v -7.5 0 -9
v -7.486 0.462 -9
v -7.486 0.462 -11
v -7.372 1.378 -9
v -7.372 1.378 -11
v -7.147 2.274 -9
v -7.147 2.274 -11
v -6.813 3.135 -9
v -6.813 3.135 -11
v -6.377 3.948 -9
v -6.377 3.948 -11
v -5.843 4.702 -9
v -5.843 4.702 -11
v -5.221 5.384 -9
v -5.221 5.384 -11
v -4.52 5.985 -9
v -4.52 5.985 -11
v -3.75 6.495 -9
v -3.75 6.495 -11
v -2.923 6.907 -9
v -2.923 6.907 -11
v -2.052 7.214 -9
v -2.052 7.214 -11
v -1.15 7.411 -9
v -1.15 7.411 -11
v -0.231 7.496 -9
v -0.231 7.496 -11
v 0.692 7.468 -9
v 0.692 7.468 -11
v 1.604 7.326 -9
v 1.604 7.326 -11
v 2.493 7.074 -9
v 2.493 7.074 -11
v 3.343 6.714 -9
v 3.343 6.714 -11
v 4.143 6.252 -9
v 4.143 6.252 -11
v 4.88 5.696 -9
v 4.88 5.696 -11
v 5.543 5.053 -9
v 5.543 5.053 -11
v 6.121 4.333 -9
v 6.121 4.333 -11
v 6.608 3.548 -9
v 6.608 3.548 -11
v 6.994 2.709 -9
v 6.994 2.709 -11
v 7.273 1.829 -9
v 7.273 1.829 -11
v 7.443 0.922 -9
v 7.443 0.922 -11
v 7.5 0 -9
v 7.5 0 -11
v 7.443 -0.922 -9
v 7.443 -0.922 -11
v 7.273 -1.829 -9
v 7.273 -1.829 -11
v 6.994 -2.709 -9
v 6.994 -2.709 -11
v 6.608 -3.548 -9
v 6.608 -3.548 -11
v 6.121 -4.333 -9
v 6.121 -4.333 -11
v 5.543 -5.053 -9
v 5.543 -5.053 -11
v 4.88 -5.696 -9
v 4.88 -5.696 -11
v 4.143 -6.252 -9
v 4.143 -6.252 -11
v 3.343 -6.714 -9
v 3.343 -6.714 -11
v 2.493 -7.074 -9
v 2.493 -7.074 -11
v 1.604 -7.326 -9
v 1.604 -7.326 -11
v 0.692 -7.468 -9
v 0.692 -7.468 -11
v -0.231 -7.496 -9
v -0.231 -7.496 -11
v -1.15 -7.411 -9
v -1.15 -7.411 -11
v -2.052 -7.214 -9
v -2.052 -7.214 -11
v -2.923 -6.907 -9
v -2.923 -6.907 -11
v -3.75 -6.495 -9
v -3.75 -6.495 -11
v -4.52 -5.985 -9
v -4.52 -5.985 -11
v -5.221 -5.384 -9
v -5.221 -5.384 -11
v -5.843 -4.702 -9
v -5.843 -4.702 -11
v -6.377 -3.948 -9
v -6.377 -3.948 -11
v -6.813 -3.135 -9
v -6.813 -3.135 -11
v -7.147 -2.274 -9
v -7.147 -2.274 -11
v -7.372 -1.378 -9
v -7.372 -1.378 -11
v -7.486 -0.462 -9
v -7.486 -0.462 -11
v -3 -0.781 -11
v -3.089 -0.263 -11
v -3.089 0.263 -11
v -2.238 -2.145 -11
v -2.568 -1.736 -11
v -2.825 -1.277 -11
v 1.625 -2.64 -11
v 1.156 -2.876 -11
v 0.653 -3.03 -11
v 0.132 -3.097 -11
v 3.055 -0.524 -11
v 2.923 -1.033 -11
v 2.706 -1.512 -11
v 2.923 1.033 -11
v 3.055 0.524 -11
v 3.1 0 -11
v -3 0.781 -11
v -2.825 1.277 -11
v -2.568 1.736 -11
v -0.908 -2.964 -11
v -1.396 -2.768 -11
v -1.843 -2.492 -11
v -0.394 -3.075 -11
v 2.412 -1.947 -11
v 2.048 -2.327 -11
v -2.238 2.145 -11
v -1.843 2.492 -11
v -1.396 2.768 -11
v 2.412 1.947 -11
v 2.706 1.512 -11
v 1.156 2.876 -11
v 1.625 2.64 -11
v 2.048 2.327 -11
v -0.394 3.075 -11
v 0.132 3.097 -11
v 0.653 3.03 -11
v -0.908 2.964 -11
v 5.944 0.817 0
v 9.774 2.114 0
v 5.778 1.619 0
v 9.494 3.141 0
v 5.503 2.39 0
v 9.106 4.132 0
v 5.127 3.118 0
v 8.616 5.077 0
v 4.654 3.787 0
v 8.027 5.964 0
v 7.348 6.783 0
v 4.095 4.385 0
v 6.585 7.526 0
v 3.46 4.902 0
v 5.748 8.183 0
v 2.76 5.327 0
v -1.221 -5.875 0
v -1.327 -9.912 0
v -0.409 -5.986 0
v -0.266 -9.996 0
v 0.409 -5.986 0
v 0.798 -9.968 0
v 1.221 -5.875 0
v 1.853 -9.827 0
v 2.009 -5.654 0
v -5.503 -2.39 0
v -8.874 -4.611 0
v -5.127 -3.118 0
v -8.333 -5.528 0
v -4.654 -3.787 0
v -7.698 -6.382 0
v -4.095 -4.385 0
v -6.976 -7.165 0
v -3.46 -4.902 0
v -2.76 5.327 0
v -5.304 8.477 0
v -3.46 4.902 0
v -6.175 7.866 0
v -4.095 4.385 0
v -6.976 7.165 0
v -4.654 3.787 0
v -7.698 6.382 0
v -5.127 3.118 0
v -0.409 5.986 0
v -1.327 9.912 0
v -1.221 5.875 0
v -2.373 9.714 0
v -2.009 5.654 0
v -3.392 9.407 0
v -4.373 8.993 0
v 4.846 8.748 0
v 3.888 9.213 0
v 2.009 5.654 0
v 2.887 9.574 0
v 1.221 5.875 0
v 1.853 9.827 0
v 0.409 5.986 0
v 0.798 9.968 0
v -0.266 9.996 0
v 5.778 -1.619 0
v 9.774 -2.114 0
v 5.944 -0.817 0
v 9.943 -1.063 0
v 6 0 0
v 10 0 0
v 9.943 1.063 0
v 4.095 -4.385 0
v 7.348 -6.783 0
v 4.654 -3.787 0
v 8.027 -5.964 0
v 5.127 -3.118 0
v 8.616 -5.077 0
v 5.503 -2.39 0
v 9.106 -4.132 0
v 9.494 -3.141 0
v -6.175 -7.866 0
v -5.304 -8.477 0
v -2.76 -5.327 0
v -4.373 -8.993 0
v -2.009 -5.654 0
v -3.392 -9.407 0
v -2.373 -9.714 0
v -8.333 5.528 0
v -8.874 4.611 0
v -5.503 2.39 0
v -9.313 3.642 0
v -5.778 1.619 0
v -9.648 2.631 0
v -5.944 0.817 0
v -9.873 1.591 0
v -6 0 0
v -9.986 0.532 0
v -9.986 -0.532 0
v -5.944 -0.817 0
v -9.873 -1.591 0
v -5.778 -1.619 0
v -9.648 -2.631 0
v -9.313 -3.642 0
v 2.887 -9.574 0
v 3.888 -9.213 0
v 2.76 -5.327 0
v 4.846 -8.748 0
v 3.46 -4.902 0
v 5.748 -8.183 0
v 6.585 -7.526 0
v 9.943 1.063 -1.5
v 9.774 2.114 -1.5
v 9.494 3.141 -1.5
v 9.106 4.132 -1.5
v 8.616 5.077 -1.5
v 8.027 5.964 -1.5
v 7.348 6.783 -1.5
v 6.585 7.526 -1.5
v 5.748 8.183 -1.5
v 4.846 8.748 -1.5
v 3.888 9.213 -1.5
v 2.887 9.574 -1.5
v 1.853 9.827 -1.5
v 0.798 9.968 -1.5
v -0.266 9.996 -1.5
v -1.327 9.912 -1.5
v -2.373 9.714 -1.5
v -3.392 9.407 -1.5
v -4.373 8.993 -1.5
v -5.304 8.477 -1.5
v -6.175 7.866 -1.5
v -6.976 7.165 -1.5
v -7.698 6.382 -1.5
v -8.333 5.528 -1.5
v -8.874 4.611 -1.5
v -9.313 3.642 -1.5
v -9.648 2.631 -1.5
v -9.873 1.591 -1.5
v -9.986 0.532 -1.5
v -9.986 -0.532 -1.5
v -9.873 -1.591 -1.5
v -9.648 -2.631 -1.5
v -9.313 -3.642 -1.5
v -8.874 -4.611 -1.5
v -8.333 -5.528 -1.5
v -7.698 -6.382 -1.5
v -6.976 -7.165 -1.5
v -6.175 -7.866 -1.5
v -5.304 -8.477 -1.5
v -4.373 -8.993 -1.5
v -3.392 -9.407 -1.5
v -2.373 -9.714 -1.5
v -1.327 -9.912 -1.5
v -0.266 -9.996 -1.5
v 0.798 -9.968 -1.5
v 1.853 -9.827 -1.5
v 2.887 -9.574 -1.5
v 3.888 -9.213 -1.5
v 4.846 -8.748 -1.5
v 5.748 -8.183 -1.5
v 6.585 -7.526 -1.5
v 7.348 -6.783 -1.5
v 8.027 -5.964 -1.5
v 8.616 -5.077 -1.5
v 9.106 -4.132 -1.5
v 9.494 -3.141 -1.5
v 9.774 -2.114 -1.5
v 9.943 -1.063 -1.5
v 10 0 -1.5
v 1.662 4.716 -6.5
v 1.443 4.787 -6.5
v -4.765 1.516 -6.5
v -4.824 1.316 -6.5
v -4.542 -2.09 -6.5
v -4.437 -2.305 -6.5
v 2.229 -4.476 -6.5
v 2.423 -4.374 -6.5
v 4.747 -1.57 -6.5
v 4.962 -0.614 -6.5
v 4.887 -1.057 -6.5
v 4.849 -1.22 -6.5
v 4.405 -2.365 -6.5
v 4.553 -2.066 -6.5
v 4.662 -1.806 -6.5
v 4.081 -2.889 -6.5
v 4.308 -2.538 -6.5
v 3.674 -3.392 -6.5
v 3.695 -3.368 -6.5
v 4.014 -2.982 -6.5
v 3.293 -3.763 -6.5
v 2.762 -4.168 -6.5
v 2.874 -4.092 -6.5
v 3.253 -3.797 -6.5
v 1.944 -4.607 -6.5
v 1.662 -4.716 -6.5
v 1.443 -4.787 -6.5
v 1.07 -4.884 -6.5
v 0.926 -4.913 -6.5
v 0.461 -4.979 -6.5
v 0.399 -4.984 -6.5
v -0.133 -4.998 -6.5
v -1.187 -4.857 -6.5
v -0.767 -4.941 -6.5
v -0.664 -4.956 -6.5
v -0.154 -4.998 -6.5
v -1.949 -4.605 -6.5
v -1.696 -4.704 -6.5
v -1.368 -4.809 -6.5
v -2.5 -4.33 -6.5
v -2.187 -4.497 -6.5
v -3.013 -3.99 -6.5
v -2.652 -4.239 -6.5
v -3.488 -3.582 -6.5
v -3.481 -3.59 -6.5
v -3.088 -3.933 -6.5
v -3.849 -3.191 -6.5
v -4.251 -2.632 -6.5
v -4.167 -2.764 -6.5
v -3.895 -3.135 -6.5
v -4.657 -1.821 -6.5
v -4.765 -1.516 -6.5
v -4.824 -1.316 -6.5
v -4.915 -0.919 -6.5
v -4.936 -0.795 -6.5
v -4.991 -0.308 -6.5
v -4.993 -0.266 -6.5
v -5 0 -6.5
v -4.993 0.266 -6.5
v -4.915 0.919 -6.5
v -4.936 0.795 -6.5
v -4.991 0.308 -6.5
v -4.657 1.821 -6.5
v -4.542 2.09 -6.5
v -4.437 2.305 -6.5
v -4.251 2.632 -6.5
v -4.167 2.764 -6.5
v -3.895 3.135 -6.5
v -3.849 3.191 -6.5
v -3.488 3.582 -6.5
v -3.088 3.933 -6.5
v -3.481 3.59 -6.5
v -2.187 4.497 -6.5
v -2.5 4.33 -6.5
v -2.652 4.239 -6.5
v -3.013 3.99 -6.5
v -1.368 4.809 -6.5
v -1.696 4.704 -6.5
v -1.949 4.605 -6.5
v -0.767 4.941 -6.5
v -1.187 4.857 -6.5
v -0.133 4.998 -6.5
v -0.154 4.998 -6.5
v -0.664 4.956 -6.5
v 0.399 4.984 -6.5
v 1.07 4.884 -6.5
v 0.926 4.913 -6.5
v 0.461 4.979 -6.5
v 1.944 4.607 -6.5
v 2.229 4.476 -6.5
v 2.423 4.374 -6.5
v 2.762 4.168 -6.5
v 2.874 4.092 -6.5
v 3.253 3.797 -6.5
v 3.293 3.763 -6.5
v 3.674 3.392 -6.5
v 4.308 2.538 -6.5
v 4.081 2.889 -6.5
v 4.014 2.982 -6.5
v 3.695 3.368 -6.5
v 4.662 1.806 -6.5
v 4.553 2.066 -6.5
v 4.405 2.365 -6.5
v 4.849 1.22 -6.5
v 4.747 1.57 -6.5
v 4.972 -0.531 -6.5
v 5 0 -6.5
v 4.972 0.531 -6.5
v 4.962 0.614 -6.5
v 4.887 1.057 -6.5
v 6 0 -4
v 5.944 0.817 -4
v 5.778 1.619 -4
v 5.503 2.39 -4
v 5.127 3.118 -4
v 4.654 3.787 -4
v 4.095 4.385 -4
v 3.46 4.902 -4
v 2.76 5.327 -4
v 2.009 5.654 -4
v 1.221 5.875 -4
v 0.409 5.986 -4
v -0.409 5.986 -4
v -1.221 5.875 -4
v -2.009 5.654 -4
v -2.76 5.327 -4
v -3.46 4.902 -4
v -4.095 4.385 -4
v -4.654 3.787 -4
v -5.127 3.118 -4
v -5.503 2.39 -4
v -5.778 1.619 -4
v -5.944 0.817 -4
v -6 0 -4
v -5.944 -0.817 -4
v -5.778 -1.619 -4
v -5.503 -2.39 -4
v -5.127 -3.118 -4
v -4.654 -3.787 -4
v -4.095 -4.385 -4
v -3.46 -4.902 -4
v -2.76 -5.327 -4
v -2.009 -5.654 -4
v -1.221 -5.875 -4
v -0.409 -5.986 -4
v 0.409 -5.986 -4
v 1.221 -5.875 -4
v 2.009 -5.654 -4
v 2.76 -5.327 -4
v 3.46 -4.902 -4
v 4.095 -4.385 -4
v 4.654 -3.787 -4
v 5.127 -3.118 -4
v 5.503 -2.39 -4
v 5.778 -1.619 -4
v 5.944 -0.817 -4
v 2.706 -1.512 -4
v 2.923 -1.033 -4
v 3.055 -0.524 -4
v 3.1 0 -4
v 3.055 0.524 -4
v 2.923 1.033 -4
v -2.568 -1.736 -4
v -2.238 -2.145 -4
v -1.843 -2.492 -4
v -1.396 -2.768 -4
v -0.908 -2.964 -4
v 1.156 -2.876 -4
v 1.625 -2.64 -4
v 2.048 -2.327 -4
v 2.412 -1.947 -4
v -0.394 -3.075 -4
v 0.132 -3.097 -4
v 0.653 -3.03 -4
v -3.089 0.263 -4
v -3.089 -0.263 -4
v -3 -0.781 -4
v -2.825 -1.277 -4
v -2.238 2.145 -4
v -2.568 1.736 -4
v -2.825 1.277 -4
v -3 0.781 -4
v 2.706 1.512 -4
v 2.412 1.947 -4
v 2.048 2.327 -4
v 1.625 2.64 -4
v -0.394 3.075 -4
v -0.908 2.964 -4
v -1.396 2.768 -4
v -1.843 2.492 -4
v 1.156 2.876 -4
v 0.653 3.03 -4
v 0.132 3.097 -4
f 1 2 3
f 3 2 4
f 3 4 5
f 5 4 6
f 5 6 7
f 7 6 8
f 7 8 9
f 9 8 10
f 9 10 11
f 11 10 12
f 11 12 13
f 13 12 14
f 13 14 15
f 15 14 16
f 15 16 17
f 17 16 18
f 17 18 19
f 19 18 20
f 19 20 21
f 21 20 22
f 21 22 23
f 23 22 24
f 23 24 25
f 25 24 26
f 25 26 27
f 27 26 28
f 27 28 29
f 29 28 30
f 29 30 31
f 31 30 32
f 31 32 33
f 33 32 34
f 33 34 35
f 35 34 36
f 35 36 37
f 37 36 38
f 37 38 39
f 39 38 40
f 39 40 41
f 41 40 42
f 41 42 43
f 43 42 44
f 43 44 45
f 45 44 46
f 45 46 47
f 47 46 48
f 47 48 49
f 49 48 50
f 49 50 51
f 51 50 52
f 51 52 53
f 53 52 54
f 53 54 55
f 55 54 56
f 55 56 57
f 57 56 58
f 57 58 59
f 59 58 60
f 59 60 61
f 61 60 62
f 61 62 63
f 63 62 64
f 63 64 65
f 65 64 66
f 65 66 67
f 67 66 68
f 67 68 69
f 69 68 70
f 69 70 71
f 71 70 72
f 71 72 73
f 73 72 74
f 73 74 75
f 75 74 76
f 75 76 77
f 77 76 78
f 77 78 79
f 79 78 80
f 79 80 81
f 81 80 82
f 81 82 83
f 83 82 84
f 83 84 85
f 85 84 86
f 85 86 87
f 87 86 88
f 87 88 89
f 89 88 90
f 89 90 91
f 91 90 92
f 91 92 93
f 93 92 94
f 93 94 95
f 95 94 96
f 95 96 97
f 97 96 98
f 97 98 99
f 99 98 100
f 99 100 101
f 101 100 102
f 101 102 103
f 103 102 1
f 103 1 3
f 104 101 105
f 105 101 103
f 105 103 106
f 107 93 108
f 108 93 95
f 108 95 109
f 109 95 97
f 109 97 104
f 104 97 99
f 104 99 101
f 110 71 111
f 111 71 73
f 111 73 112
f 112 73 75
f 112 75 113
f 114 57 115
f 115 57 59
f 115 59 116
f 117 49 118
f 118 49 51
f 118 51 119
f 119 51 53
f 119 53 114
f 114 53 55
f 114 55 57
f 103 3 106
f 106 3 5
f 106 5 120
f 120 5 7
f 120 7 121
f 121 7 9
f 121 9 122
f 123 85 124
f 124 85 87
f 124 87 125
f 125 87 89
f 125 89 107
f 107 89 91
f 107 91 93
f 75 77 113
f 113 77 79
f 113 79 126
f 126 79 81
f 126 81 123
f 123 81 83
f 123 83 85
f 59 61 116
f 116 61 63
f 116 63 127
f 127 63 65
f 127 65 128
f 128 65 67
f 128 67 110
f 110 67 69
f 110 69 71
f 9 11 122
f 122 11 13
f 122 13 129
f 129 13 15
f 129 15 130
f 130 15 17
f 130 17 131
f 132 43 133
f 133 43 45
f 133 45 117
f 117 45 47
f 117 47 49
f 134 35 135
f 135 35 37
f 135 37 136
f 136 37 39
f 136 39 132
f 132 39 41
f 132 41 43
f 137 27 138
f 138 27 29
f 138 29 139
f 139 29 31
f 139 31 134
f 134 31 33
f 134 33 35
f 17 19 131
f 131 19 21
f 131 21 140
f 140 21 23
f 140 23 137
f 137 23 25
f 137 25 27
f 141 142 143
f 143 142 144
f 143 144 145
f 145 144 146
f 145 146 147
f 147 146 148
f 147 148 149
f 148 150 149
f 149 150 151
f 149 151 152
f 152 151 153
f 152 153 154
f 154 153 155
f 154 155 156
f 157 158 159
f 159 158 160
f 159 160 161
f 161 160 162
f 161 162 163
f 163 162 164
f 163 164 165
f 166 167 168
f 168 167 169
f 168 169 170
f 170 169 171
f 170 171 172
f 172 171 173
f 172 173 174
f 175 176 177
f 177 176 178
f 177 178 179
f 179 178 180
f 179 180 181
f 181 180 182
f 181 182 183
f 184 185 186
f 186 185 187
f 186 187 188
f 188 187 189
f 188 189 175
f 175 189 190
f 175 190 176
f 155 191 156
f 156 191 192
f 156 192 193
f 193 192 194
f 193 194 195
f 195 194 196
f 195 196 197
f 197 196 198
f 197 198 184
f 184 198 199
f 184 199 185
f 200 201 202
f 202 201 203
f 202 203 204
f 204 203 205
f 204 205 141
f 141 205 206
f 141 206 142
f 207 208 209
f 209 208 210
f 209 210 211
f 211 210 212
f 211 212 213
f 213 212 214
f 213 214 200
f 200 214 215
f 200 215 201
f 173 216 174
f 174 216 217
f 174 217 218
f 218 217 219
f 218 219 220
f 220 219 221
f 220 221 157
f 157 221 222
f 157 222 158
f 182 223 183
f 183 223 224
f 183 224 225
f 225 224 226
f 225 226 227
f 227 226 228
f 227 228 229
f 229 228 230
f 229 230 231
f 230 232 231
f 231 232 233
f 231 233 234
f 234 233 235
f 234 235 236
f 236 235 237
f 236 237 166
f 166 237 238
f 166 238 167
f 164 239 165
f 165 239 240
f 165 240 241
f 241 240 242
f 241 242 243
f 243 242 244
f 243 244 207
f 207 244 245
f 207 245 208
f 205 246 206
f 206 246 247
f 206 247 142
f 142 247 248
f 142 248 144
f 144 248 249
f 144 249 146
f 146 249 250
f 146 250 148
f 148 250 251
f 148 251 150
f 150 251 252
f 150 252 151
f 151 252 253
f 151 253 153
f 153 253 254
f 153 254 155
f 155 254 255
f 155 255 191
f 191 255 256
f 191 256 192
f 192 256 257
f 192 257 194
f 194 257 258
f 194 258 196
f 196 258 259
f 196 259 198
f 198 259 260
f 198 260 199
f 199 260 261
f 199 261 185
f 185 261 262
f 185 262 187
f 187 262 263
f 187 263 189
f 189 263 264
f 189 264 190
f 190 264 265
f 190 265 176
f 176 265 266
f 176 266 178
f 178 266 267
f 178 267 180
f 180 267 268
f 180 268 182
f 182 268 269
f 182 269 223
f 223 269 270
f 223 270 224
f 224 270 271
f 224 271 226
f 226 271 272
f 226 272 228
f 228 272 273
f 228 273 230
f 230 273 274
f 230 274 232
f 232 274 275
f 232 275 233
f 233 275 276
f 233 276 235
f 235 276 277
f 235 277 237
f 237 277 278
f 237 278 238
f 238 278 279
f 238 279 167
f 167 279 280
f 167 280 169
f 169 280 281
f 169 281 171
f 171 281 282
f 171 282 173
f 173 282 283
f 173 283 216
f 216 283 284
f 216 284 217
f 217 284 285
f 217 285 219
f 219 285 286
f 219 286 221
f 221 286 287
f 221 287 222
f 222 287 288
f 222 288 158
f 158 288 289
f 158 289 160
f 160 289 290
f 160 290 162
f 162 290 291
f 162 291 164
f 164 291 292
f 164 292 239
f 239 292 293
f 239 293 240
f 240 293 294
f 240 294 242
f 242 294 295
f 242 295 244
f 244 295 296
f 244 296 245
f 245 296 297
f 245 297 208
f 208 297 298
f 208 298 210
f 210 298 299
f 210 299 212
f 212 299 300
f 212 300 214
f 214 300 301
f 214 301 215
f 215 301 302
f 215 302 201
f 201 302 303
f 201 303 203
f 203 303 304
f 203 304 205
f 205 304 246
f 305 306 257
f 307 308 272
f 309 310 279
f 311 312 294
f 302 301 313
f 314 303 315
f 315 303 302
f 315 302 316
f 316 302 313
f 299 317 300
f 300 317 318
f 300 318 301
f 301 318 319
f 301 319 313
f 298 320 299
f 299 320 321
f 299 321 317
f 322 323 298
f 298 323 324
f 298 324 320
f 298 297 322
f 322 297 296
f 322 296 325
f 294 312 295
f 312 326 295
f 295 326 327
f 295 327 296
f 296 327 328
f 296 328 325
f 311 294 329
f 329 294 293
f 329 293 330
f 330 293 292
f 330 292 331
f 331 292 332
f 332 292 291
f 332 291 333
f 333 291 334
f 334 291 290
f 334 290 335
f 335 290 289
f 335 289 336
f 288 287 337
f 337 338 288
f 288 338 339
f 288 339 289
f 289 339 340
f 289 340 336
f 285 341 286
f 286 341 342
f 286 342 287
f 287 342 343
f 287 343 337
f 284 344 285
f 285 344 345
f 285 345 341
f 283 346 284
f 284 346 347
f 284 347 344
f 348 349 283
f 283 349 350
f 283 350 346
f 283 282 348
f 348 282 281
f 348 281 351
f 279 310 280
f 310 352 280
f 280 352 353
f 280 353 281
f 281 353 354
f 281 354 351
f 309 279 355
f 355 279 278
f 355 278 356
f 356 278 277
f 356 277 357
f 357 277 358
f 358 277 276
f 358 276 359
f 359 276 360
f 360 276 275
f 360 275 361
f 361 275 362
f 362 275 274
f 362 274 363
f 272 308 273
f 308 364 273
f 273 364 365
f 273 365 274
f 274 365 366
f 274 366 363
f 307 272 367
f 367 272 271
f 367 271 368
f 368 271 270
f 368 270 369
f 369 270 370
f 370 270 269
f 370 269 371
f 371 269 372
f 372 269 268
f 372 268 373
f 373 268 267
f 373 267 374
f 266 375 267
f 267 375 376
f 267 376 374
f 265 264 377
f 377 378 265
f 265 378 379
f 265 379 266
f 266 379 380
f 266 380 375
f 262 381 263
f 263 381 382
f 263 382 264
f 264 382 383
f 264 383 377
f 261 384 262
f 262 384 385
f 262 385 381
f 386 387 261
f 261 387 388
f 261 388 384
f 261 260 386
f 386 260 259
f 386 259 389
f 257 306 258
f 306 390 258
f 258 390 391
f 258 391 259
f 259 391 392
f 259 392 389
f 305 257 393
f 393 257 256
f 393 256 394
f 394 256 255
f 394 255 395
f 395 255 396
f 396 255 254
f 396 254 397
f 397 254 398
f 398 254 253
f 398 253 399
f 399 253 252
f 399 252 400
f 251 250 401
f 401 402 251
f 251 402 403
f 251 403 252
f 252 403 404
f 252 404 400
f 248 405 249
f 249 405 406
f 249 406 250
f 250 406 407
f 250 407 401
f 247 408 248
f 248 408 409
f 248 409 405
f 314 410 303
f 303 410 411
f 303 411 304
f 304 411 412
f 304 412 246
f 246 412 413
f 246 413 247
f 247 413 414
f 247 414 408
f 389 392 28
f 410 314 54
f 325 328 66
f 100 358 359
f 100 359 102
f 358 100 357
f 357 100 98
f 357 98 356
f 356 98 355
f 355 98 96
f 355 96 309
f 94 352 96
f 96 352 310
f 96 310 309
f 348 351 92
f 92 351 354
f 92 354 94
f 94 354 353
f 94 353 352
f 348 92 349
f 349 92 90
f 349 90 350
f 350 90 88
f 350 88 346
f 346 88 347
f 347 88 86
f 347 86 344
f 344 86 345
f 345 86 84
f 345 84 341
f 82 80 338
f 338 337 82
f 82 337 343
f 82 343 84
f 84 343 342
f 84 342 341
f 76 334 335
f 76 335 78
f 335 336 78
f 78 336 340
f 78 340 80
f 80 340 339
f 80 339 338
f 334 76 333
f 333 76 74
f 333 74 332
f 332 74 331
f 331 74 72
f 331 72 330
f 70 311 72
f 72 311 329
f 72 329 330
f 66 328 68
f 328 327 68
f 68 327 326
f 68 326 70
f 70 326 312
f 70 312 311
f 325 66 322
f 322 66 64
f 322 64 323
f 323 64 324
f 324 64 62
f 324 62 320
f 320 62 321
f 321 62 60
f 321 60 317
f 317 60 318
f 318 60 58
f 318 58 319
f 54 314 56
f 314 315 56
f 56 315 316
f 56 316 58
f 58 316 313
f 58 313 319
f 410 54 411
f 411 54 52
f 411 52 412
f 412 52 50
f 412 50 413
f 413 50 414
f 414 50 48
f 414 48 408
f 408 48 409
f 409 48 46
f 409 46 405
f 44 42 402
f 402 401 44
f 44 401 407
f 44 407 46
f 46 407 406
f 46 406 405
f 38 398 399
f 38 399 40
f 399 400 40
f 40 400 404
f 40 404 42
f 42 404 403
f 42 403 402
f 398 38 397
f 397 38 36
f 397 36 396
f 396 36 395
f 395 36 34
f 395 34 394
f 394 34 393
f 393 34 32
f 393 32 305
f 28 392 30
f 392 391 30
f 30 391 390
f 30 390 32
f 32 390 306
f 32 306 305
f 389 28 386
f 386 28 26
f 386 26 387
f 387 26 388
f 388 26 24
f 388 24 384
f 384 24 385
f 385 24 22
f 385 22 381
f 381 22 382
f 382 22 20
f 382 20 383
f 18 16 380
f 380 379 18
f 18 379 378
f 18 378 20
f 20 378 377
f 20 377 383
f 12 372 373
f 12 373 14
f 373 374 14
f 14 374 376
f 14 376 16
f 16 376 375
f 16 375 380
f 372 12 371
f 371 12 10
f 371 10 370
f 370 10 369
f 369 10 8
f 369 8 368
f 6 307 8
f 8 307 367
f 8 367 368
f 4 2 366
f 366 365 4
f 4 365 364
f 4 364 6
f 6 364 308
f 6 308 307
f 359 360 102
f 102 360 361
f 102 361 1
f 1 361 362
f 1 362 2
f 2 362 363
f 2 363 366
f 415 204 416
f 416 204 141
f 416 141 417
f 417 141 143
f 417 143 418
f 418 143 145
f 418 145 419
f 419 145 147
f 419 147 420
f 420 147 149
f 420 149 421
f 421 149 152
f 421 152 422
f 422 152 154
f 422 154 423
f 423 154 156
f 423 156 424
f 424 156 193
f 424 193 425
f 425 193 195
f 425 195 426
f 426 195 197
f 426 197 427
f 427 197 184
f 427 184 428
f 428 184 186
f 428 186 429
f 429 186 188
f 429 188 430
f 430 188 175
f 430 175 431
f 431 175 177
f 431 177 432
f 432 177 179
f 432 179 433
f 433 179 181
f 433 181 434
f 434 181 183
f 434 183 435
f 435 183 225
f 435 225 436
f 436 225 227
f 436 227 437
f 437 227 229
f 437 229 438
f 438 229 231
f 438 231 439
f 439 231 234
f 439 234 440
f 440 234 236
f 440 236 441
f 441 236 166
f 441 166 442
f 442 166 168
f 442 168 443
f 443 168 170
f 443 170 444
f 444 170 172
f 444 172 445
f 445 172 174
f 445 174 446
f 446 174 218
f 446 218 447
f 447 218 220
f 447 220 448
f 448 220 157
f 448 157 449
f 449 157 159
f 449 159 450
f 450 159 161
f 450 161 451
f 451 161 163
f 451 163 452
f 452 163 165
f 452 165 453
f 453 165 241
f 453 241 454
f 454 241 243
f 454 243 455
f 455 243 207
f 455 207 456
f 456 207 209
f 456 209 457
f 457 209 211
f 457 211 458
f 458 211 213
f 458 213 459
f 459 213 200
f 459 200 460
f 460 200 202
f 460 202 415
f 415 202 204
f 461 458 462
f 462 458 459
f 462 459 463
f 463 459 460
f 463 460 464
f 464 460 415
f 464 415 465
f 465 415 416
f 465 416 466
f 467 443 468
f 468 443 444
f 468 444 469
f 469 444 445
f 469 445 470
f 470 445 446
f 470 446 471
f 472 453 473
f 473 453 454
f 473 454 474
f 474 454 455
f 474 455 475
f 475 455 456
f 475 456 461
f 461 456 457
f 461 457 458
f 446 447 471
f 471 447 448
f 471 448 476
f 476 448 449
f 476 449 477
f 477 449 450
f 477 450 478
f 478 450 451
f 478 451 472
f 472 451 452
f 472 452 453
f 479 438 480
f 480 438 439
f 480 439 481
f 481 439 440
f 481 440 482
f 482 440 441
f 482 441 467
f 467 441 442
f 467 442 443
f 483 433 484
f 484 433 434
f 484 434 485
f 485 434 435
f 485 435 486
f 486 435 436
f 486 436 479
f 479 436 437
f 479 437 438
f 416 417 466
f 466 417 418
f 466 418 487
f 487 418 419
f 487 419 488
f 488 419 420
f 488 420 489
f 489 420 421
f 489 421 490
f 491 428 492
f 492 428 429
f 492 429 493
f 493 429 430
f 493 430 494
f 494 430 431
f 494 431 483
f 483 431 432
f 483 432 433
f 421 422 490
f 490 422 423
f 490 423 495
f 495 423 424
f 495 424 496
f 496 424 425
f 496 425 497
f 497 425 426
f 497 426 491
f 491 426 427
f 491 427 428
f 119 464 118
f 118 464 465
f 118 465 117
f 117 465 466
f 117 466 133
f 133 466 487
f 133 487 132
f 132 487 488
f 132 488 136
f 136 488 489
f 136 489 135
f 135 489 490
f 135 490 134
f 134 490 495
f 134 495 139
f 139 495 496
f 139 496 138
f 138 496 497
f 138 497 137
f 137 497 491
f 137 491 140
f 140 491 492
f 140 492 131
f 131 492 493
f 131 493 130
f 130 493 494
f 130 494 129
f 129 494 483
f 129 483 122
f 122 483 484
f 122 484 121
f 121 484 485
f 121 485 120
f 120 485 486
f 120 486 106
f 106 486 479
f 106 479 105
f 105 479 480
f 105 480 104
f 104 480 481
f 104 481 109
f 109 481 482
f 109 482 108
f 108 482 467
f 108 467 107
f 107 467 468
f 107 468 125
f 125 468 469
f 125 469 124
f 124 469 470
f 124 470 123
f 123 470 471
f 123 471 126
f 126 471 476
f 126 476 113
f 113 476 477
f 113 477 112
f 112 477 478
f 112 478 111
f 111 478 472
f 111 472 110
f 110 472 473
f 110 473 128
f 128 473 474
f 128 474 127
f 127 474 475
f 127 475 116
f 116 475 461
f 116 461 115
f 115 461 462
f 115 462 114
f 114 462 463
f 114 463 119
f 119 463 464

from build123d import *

# Parameters (mm, degrees)
SKETCH_2_R          = 6
CUT_EXTRUDE_1_DEPTH = 4
SKETCH_3_R          = 3.1
CUT_EXTRUDE_2_DEPTH = 16.779733838


with BuildPart() as part:
    # 草图1 → 旋转1 (revolve)
    with BuildSketch(Plane(origin=(0, 0, 0), x_dir=(1, 0, 0), z_dir=(0, 1, 0)), mode=Mode.PRIVATE) as revolve_1_sk:
        Polygon((-7.5, 9), (-5, 6.5), (-7.5, 4), (-10, 1.5), (-10, 0), (0, 0), (0, 11), (-7.5, 11), align=None)
    revolve(revolve_1_sk.sketch.rotate(Axis((0, 0, 1000), (0, 0, -1)), 180), axis=Axis((0, 0, 1000), (0, 0, -1)))

    # 草图2 → 切除-拉伸1 (cut)
    with BuildSketch(Plane.XY):
        Circle(SKETCH_2_R)
    extrude(amount=-CUT_EXTRUDE_1_DEPTH, mode=Mode.SUBTRACT)

    # 草图3 → 切除-拉伸2 (cut, through all)
    with BuildSketch(Plane.XY.offset(-4)):
        Circle(SKETCH_3_R)
    extrude(amount=-CUT_EXTRUDE_2_DEPTH, mode=Mode.SUBTRACT)


solid = part.part
